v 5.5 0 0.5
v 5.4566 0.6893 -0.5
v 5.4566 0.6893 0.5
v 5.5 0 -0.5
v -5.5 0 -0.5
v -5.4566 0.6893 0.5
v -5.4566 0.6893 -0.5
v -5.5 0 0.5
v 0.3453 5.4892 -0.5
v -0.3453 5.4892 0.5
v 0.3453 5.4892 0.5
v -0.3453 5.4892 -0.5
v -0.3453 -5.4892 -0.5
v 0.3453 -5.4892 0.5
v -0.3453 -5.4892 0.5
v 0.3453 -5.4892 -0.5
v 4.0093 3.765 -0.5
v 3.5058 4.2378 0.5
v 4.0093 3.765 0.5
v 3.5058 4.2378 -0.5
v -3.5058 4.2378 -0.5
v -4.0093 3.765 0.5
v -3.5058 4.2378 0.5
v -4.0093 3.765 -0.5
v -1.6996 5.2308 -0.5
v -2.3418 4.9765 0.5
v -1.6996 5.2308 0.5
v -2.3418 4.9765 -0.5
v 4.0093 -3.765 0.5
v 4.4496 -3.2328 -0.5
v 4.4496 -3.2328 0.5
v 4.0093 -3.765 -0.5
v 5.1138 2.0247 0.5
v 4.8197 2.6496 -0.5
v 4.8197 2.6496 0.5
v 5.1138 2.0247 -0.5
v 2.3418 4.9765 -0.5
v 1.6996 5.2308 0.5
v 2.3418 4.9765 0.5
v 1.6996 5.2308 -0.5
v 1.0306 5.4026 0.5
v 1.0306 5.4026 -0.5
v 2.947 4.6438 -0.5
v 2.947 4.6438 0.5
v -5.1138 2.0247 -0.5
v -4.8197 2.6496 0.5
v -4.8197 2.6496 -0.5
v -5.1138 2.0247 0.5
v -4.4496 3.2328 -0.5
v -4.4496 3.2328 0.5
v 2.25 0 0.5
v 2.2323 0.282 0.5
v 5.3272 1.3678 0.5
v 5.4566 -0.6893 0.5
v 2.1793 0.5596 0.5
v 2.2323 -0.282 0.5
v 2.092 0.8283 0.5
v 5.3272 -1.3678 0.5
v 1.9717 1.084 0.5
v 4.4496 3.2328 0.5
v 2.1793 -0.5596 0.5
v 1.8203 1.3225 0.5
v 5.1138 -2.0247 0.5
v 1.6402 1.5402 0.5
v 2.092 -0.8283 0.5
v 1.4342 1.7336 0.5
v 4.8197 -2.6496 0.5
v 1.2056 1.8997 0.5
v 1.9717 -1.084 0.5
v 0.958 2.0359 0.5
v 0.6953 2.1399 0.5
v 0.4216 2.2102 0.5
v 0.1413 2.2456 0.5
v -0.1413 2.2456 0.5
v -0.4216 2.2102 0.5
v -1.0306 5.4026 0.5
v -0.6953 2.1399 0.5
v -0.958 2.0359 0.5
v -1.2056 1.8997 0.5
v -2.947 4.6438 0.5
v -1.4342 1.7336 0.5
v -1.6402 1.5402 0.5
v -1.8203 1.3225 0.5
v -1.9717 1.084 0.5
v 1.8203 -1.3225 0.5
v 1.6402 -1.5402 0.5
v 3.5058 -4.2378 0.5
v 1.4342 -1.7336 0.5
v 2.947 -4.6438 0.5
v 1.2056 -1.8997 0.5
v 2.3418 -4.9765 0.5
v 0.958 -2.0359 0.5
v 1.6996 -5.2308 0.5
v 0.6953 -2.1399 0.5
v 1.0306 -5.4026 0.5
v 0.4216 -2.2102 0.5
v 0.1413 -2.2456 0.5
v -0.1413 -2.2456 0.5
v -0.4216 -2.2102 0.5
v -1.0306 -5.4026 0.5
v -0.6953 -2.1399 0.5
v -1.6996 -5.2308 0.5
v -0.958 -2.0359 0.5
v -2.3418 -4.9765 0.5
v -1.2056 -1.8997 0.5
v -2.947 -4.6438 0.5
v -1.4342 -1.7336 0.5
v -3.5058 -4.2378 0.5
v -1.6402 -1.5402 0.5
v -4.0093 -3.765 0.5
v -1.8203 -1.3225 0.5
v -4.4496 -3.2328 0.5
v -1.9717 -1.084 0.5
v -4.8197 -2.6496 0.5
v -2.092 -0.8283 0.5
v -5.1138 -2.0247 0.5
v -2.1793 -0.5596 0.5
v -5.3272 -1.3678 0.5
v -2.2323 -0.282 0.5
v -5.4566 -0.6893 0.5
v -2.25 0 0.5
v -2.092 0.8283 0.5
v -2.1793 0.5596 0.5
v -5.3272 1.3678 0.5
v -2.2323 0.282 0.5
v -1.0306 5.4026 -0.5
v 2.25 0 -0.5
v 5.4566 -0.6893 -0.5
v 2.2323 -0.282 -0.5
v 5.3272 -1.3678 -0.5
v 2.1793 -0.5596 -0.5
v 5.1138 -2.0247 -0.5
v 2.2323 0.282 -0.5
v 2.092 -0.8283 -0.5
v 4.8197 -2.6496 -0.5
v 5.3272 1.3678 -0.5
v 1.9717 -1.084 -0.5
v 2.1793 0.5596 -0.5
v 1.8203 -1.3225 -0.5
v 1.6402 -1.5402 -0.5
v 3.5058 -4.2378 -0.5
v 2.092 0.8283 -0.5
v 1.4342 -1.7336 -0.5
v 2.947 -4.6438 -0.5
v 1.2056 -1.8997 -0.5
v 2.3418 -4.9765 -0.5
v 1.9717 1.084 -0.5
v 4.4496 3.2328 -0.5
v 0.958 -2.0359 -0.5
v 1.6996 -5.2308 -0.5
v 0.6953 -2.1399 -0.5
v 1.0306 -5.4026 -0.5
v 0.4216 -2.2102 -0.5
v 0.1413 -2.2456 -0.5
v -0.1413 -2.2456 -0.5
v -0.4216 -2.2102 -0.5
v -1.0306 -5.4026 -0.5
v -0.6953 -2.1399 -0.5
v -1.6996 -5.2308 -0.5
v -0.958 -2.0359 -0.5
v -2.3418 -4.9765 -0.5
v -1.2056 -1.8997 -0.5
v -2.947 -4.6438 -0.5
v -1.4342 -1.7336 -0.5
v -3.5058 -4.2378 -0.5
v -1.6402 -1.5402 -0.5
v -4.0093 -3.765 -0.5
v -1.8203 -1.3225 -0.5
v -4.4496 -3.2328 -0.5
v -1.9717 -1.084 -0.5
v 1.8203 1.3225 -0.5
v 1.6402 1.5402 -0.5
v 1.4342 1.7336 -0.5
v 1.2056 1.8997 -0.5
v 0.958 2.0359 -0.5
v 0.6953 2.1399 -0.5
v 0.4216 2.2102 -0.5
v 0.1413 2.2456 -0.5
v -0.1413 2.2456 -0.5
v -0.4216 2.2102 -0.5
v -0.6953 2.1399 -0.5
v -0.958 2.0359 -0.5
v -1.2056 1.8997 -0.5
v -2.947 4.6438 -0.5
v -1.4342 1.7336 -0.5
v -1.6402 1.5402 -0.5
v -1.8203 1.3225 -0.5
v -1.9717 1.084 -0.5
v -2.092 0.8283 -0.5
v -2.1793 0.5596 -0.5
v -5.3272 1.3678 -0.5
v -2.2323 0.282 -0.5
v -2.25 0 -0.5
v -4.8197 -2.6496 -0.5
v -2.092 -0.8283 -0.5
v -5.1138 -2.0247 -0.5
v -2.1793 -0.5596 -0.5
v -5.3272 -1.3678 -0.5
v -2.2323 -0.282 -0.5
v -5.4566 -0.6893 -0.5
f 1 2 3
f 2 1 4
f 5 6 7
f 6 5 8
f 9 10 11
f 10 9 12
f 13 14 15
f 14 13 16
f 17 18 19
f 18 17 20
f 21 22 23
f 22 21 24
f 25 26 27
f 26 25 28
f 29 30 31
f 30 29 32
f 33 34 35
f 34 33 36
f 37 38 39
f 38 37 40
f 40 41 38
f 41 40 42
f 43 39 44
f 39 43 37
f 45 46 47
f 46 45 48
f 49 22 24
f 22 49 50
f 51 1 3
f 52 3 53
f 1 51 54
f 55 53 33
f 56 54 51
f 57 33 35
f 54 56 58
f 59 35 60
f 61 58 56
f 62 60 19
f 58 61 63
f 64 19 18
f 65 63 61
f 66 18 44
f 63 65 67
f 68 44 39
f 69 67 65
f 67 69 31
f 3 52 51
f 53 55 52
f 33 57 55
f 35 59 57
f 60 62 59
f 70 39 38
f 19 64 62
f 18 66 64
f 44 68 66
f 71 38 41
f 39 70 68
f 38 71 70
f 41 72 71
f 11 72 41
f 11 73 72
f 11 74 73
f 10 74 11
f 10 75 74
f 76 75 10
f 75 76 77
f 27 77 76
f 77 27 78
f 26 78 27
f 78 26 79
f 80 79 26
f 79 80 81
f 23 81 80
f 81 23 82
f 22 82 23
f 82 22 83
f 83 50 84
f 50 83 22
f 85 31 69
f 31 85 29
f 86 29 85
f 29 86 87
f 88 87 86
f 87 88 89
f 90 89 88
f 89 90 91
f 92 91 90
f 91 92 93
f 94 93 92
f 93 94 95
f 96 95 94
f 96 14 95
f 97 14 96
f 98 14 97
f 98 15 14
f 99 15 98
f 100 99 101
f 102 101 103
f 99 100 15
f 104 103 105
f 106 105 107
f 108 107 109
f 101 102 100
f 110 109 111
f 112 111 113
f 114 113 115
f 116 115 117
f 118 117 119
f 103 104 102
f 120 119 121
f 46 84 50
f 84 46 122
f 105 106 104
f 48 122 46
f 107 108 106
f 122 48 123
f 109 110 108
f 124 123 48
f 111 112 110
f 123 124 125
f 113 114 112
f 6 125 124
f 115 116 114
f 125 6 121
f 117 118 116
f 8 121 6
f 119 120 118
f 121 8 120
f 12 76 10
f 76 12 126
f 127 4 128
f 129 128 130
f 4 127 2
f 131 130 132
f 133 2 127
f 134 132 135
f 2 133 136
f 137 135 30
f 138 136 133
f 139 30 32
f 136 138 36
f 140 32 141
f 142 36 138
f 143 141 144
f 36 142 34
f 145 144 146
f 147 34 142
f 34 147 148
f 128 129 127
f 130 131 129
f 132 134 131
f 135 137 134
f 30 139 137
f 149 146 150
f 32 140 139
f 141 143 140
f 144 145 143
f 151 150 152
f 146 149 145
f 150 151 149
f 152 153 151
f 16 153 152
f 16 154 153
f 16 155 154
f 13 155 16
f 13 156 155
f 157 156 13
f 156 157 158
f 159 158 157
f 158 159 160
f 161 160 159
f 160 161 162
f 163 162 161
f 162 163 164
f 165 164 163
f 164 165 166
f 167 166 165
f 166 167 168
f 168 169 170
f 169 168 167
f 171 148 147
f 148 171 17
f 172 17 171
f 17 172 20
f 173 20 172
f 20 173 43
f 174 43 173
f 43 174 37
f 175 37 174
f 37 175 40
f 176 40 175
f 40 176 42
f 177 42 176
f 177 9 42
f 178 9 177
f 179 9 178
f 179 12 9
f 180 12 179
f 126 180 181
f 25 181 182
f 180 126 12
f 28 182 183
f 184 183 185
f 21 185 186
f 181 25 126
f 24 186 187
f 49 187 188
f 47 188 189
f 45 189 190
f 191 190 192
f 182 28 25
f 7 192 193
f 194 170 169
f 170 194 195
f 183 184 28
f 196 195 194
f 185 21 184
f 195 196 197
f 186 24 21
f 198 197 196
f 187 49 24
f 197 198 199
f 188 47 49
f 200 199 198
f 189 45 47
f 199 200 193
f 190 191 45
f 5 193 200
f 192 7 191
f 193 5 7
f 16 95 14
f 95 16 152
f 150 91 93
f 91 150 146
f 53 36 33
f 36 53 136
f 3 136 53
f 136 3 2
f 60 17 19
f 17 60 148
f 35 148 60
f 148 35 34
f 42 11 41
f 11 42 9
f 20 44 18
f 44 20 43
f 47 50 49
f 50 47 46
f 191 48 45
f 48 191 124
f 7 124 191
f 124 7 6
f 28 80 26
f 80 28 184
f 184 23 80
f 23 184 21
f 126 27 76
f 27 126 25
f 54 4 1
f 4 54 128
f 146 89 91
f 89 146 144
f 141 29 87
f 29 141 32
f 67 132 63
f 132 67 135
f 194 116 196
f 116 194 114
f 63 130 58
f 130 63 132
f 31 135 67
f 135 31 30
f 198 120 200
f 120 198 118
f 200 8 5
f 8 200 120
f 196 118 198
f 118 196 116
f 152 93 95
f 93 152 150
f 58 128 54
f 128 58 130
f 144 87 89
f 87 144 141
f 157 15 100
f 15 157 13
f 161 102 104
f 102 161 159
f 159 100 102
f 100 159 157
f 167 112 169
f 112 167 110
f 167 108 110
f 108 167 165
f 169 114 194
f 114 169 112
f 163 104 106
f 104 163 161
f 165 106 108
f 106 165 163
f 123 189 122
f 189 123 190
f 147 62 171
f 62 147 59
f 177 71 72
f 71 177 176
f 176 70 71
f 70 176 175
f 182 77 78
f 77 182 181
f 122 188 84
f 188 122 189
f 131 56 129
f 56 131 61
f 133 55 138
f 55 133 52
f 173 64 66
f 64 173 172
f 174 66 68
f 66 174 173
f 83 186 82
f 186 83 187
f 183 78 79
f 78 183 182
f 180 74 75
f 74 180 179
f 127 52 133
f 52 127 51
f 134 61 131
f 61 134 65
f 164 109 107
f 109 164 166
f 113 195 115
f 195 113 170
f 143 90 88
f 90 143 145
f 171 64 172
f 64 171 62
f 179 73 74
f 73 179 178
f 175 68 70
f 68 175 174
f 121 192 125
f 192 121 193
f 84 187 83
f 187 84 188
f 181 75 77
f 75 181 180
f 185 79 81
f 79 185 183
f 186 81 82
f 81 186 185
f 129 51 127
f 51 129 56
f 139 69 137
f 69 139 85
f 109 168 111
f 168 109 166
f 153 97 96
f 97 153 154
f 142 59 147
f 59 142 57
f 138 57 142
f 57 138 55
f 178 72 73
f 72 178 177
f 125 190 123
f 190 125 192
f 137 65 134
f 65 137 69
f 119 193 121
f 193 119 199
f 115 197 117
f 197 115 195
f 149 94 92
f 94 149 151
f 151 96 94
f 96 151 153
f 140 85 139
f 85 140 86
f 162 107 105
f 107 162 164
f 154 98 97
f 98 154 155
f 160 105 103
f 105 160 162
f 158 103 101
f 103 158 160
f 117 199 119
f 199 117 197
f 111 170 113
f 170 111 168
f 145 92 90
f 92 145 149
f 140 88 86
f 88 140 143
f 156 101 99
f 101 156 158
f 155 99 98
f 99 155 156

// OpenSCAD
$fn = 50;


difference() {
	union() {
		translate(v = [0, 0, -0.5000000000]) {
			cylinder(h = 1, r = 5.5000000000);
		}
	}
	union() {
		translate(v = [0, 0, -100.0000000000]) {
			cylinder(h = 200, r = 2.2500000000);
		}
	}
}
